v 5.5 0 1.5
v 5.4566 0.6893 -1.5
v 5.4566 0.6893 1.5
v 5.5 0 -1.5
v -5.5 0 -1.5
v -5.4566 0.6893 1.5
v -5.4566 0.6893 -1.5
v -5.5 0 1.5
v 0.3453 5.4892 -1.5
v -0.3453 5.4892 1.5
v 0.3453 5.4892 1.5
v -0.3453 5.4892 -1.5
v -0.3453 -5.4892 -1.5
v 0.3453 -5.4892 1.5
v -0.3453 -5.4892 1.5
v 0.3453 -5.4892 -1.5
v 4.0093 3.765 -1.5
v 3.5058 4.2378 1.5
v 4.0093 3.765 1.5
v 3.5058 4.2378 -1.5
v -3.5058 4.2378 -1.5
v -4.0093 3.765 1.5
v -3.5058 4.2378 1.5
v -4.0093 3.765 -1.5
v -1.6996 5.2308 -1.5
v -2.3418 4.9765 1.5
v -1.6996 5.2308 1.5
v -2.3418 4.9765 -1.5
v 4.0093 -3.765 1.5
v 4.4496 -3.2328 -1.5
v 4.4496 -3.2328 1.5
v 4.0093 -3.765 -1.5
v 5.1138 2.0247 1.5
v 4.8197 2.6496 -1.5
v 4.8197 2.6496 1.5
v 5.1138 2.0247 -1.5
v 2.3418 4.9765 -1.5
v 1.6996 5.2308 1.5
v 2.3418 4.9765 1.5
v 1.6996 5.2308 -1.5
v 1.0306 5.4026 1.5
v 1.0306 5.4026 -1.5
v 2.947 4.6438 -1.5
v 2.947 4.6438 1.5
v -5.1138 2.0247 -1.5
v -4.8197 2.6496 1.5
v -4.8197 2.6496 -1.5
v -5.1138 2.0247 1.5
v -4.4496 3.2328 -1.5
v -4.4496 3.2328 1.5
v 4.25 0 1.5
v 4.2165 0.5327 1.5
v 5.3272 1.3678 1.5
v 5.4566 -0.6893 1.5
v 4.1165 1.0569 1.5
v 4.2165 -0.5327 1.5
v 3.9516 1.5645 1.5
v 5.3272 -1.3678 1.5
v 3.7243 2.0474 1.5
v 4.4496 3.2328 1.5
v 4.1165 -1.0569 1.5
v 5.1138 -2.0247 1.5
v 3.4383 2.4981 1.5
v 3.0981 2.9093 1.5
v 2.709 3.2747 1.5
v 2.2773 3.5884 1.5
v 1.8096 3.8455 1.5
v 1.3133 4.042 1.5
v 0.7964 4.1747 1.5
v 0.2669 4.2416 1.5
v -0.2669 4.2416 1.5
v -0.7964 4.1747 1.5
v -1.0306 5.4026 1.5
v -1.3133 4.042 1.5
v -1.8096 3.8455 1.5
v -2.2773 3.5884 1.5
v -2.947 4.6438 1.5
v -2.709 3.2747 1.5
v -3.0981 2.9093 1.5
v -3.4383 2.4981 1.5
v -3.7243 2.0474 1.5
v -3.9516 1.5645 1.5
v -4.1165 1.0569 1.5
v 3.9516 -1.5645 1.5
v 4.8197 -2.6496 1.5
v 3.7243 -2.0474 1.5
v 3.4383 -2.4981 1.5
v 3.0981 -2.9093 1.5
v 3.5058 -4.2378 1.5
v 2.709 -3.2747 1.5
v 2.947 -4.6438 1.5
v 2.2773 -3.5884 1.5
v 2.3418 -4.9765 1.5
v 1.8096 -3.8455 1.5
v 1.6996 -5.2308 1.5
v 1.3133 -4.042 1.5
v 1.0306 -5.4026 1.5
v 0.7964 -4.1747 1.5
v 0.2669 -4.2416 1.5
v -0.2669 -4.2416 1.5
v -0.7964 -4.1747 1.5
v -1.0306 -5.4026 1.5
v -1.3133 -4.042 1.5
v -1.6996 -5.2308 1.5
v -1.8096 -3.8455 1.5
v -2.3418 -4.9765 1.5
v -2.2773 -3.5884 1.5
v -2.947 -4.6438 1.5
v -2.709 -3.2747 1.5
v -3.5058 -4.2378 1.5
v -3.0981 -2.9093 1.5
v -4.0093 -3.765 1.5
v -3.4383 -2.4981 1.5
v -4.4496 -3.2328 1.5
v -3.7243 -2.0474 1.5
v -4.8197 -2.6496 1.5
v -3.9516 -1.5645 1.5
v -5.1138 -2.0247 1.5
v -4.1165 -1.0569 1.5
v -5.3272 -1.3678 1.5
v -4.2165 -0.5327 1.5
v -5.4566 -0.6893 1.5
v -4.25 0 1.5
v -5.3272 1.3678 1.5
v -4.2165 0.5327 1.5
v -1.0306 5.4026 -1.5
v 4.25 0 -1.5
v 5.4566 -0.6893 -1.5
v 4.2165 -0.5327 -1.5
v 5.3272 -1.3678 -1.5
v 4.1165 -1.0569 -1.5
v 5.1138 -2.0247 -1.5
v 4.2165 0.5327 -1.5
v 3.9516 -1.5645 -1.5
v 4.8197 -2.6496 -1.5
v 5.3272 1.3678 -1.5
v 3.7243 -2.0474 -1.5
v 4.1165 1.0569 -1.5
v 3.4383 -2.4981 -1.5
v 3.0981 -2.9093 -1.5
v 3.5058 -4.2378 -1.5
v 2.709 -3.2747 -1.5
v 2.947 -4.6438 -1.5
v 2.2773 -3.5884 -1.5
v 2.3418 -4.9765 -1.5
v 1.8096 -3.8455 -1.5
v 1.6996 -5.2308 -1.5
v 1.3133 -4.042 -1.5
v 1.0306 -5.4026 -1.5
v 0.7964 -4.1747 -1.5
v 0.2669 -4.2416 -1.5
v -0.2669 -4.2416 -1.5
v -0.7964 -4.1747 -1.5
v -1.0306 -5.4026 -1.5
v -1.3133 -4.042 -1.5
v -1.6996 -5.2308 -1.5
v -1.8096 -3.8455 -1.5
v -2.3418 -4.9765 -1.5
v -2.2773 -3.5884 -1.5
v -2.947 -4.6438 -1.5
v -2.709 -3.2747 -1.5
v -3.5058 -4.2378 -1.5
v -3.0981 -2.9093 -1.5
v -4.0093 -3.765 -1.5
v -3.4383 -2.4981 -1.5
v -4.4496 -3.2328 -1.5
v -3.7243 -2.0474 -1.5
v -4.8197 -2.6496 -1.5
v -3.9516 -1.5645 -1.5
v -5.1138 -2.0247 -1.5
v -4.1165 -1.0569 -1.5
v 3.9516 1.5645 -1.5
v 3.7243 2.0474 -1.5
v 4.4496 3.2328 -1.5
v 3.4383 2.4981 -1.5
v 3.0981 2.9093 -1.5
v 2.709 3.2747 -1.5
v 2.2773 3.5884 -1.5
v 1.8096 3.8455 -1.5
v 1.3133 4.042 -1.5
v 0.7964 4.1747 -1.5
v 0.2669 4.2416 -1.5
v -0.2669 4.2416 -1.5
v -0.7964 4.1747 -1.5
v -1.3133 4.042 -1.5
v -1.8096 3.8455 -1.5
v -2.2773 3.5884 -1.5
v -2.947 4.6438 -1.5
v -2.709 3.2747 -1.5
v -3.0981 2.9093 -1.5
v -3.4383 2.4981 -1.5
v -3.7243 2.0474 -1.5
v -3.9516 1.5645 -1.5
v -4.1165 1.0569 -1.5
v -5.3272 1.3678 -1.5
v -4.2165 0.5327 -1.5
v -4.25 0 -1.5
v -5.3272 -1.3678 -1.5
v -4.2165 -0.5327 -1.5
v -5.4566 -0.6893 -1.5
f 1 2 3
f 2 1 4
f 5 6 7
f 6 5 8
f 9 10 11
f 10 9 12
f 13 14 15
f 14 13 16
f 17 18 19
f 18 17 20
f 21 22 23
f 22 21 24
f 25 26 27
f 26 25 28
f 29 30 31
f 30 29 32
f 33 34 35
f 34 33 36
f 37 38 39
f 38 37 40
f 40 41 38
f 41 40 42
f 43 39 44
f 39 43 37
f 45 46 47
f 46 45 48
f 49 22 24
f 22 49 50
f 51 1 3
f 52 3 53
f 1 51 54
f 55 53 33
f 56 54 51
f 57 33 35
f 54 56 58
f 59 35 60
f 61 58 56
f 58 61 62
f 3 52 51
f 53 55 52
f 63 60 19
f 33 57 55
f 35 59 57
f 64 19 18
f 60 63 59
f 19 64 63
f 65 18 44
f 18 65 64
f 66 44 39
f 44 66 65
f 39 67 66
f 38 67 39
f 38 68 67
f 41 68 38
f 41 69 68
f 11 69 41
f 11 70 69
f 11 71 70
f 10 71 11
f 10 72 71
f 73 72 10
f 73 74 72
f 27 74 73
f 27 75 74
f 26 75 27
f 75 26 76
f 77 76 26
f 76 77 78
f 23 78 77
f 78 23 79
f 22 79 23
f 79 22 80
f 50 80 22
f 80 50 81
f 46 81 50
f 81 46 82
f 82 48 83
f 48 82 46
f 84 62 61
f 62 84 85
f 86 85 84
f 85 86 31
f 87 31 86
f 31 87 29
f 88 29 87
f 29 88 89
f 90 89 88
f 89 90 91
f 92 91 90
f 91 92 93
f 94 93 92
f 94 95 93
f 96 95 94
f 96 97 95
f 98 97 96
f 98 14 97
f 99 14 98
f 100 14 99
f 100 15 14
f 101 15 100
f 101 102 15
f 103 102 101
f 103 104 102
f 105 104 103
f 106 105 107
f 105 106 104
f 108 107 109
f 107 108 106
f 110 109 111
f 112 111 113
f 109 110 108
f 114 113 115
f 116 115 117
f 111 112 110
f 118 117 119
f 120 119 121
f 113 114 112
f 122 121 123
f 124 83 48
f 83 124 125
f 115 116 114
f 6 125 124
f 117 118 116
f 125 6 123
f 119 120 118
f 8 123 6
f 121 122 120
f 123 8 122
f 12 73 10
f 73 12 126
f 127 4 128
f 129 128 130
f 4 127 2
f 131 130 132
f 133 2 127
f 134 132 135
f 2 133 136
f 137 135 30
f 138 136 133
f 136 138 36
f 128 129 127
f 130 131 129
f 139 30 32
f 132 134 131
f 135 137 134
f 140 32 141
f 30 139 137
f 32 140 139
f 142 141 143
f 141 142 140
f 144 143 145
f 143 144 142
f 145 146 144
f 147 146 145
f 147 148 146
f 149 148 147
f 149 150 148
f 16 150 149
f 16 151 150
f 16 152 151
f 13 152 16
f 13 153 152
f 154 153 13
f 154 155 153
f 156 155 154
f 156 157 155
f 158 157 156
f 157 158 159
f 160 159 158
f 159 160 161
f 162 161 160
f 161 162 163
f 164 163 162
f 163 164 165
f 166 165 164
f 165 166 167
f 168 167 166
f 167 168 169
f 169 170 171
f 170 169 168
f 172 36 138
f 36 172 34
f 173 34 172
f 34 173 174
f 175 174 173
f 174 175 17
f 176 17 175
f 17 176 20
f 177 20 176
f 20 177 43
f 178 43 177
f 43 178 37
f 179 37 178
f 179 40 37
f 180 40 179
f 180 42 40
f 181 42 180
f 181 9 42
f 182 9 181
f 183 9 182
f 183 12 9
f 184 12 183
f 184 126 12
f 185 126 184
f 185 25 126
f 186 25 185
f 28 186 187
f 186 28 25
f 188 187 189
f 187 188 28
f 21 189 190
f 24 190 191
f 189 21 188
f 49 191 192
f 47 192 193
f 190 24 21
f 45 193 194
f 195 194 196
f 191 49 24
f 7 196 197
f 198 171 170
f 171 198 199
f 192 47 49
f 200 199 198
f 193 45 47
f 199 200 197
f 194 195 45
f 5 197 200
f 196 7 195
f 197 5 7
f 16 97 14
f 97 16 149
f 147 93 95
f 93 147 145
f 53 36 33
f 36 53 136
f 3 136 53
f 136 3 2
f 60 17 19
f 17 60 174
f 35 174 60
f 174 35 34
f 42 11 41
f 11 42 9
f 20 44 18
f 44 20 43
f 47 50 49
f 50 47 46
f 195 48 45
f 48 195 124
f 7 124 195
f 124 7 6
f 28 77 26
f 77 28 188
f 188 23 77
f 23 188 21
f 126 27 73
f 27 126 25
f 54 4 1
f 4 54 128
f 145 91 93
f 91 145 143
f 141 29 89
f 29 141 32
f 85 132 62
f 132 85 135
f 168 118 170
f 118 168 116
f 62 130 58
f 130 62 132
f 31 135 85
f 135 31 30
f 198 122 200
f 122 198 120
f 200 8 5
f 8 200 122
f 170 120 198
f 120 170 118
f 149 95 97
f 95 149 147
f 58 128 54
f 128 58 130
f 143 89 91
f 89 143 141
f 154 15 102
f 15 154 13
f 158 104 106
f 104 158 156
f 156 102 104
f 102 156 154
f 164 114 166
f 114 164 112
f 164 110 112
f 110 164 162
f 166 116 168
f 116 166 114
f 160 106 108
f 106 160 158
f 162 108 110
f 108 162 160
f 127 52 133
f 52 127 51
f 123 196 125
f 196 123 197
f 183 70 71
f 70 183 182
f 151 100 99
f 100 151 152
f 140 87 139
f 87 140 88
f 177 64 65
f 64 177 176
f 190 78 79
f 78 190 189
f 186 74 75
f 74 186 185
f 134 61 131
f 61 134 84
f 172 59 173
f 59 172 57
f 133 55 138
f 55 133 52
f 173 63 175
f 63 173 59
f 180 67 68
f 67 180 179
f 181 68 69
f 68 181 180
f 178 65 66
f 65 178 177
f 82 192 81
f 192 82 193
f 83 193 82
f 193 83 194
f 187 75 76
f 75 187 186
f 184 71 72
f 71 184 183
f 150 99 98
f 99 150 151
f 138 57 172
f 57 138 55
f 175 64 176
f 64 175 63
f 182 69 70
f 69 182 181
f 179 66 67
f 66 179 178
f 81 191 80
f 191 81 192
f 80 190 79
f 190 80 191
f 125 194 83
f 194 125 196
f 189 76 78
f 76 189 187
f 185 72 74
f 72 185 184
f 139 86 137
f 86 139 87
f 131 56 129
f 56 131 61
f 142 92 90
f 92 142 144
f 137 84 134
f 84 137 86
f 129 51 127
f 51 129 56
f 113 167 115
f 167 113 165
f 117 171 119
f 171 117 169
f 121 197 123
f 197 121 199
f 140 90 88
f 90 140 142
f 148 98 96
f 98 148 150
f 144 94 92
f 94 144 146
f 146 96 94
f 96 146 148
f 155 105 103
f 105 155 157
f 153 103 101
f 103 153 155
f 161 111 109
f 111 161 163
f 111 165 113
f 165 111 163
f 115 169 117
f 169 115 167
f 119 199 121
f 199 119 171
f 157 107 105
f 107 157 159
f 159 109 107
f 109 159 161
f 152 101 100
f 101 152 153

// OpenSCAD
$fn = 50;


difference() {
	union() {
		translate(v = [0, 0, -1.5000000000]) {
			cylinder(h = 3, r = 5.5000000000);
		}
	}
	union() {
		translate(v = [0, 0, -100.0000000000]) {
			cylinder(h = 200, r = 4.2500000000);
		}
	}
}
